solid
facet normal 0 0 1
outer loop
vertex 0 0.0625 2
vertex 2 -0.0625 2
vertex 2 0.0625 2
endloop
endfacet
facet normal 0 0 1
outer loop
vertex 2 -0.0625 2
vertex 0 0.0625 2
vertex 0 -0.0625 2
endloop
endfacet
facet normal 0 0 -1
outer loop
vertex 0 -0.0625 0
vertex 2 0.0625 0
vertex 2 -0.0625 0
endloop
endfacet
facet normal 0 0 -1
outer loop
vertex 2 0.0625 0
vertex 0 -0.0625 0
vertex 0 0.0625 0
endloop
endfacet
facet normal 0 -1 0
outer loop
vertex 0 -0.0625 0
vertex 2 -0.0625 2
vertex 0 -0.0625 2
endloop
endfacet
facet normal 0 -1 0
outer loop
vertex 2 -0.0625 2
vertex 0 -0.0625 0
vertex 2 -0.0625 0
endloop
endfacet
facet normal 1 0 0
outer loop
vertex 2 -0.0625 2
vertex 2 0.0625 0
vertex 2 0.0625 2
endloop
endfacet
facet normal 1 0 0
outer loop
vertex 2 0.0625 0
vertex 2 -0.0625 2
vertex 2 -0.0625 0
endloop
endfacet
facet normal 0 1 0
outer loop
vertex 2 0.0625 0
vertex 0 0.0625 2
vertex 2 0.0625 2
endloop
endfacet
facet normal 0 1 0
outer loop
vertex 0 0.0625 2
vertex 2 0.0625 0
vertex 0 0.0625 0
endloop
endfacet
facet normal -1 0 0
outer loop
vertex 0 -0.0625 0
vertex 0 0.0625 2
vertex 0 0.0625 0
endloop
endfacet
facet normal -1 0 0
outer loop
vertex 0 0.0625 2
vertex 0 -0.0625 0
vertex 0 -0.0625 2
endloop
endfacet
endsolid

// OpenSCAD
module rudder() {
  translate([0,-1/16, 0])
  cube([2,1/8,2]);
}

rudder();
